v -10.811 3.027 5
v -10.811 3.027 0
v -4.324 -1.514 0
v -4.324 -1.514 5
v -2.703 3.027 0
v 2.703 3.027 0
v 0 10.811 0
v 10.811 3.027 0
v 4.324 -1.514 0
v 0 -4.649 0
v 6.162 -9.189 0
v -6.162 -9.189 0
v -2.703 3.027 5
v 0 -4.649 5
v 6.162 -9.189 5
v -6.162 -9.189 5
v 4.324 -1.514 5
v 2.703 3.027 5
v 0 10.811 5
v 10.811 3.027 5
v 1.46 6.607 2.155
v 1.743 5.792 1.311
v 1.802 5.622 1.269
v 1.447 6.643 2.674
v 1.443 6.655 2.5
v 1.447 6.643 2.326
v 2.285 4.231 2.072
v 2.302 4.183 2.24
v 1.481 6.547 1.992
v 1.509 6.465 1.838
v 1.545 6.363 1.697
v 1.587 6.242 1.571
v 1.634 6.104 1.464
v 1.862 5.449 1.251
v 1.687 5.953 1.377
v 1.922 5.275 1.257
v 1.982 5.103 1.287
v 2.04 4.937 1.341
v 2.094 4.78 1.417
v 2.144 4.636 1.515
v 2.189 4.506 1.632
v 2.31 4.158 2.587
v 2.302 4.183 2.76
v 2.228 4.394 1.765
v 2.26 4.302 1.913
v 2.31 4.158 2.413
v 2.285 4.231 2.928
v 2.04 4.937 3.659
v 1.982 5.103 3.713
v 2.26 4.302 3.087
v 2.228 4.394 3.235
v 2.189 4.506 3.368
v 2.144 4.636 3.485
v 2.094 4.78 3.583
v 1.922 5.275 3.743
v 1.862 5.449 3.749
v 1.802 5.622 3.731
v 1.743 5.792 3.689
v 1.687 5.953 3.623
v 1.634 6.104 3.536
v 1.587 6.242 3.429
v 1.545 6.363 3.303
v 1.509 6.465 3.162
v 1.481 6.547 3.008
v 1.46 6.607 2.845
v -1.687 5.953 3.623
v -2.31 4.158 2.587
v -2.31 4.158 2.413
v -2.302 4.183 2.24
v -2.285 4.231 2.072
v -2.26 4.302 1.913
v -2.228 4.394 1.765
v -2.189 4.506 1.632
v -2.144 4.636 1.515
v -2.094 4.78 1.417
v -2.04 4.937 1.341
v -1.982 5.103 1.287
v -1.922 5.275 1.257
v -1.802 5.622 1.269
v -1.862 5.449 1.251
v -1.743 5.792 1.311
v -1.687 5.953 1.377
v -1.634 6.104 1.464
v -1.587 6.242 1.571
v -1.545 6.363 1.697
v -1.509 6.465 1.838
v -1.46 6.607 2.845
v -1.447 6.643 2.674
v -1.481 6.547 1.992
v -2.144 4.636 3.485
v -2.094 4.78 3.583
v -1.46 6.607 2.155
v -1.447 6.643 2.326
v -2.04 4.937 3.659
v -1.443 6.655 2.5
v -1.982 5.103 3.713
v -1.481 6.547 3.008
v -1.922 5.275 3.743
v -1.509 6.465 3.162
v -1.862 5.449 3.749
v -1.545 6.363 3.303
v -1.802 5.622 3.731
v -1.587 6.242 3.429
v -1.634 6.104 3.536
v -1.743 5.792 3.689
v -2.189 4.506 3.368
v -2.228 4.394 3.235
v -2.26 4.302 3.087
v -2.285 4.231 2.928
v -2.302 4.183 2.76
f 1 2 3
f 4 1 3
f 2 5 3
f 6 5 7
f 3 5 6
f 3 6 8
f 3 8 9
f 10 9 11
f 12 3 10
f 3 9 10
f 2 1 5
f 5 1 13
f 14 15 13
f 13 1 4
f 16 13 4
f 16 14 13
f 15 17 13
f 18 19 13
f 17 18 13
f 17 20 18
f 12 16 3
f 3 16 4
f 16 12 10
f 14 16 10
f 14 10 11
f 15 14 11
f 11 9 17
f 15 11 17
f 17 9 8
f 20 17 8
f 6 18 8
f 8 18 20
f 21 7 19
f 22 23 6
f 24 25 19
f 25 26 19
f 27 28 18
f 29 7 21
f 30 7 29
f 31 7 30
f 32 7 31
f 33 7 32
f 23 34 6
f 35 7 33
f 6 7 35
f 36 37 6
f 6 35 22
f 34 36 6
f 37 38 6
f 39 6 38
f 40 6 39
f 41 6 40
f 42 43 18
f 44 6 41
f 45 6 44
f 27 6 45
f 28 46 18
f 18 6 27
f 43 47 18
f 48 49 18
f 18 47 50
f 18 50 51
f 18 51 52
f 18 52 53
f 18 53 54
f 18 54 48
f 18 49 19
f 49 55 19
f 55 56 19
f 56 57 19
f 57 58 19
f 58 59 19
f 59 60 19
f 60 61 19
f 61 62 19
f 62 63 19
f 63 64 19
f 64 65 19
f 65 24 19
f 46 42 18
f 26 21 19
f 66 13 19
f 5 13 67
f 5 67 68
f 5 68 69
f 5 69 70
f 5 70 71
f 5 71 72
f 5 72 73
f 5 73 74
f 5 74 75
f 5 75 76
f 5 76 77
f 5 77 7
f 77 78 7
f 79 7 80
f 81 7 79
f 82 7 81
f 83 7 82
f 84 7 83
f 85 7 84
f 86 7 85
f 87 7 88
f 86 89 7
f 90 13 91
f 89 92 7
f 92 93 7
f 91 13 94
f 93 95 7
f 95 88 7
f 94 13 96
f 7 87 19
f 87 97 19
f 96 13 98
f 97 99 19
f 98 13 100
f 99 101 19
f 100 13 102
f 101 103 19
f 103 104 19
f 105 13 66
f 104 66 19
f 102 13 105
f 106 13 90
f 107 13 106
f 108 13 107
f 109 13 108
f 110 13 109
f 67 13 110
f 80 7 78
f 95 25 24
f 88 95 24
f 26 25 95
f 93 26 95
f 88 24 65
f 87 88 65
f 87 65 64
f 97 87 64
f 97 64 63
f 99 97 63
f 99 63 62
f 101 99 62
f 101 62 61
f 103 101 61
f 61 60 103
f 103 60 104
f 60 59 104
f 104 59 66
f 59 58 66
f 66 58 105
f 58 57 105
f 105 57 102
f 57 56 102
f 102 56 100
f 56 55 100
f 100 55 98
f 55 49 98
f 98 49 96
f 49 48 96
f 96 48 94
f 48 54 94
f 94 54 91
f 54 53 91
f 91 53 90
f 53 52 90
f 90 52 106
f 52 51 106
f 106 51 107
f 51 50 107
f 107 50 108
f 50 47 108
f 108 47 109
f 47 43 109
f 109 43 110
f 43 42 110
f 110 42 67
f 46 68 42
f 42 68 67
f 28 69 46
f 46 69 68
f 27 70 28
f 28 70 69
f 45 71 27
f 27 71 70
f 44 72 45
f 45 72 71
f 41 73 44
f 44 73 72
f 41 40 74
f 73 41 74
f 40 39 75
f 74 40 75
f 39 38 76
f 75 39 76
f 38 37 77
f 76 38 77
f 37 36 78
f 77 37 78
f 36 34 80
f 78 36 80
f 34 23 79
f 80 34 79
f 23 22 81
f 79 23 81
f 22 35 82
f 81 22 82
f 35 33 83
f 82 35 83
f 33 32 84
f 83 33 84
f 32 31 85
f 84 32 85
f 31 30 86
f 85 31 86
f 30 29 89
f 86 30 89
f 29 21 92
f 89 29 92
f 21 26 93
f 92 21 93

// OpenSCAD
//lenght of star
starlenght=20;

//thickness of star
starT=5;

//radius of hole
hole=2.5/2;

//lengt from middle of the star to end of star (the lengt of the whole star is 1.85starlen)
starlen=starlenght/1.85;


//making the bead
starbead();

//making an hole in the star change hole to change hole radius
//also rotating it to lie down
module starbead() {
  difference() {
    translate([0,0,starT/2]) star();
    translate([-starlen,starlen/2,starT/2]) rotate(a=[90,0,90]) cylinder(2*starlen, hole,hole, center = false, $fn=45 );      
  }
}

//rotating and moving the star so that it stands
module standstar() {
  rotate(a=[90,0,0]) {
    translate([0,starlen*85/100,0]) {
      star();   
    }
  }
}

//creates star shape
module star() {
  linear_extrude(height = starT, center = true, convexity = 10, twist = 0) {
        polygon( points=[[0,starlen],[starlen*25/100,starlen*28/100],[starlen,starlen*28/100],[starlen*40/100,-starlen*14/100],[starlen*57/100,-starlen*85/100],[0,-starlen*43/100],[-starlen*57/100,-starlen*85/100],[-starlen*40/100,-starlen*14/100],[-starlen,starlen*28/100],[-starlen*25/100,starlen*28/100]] );
   }
}
